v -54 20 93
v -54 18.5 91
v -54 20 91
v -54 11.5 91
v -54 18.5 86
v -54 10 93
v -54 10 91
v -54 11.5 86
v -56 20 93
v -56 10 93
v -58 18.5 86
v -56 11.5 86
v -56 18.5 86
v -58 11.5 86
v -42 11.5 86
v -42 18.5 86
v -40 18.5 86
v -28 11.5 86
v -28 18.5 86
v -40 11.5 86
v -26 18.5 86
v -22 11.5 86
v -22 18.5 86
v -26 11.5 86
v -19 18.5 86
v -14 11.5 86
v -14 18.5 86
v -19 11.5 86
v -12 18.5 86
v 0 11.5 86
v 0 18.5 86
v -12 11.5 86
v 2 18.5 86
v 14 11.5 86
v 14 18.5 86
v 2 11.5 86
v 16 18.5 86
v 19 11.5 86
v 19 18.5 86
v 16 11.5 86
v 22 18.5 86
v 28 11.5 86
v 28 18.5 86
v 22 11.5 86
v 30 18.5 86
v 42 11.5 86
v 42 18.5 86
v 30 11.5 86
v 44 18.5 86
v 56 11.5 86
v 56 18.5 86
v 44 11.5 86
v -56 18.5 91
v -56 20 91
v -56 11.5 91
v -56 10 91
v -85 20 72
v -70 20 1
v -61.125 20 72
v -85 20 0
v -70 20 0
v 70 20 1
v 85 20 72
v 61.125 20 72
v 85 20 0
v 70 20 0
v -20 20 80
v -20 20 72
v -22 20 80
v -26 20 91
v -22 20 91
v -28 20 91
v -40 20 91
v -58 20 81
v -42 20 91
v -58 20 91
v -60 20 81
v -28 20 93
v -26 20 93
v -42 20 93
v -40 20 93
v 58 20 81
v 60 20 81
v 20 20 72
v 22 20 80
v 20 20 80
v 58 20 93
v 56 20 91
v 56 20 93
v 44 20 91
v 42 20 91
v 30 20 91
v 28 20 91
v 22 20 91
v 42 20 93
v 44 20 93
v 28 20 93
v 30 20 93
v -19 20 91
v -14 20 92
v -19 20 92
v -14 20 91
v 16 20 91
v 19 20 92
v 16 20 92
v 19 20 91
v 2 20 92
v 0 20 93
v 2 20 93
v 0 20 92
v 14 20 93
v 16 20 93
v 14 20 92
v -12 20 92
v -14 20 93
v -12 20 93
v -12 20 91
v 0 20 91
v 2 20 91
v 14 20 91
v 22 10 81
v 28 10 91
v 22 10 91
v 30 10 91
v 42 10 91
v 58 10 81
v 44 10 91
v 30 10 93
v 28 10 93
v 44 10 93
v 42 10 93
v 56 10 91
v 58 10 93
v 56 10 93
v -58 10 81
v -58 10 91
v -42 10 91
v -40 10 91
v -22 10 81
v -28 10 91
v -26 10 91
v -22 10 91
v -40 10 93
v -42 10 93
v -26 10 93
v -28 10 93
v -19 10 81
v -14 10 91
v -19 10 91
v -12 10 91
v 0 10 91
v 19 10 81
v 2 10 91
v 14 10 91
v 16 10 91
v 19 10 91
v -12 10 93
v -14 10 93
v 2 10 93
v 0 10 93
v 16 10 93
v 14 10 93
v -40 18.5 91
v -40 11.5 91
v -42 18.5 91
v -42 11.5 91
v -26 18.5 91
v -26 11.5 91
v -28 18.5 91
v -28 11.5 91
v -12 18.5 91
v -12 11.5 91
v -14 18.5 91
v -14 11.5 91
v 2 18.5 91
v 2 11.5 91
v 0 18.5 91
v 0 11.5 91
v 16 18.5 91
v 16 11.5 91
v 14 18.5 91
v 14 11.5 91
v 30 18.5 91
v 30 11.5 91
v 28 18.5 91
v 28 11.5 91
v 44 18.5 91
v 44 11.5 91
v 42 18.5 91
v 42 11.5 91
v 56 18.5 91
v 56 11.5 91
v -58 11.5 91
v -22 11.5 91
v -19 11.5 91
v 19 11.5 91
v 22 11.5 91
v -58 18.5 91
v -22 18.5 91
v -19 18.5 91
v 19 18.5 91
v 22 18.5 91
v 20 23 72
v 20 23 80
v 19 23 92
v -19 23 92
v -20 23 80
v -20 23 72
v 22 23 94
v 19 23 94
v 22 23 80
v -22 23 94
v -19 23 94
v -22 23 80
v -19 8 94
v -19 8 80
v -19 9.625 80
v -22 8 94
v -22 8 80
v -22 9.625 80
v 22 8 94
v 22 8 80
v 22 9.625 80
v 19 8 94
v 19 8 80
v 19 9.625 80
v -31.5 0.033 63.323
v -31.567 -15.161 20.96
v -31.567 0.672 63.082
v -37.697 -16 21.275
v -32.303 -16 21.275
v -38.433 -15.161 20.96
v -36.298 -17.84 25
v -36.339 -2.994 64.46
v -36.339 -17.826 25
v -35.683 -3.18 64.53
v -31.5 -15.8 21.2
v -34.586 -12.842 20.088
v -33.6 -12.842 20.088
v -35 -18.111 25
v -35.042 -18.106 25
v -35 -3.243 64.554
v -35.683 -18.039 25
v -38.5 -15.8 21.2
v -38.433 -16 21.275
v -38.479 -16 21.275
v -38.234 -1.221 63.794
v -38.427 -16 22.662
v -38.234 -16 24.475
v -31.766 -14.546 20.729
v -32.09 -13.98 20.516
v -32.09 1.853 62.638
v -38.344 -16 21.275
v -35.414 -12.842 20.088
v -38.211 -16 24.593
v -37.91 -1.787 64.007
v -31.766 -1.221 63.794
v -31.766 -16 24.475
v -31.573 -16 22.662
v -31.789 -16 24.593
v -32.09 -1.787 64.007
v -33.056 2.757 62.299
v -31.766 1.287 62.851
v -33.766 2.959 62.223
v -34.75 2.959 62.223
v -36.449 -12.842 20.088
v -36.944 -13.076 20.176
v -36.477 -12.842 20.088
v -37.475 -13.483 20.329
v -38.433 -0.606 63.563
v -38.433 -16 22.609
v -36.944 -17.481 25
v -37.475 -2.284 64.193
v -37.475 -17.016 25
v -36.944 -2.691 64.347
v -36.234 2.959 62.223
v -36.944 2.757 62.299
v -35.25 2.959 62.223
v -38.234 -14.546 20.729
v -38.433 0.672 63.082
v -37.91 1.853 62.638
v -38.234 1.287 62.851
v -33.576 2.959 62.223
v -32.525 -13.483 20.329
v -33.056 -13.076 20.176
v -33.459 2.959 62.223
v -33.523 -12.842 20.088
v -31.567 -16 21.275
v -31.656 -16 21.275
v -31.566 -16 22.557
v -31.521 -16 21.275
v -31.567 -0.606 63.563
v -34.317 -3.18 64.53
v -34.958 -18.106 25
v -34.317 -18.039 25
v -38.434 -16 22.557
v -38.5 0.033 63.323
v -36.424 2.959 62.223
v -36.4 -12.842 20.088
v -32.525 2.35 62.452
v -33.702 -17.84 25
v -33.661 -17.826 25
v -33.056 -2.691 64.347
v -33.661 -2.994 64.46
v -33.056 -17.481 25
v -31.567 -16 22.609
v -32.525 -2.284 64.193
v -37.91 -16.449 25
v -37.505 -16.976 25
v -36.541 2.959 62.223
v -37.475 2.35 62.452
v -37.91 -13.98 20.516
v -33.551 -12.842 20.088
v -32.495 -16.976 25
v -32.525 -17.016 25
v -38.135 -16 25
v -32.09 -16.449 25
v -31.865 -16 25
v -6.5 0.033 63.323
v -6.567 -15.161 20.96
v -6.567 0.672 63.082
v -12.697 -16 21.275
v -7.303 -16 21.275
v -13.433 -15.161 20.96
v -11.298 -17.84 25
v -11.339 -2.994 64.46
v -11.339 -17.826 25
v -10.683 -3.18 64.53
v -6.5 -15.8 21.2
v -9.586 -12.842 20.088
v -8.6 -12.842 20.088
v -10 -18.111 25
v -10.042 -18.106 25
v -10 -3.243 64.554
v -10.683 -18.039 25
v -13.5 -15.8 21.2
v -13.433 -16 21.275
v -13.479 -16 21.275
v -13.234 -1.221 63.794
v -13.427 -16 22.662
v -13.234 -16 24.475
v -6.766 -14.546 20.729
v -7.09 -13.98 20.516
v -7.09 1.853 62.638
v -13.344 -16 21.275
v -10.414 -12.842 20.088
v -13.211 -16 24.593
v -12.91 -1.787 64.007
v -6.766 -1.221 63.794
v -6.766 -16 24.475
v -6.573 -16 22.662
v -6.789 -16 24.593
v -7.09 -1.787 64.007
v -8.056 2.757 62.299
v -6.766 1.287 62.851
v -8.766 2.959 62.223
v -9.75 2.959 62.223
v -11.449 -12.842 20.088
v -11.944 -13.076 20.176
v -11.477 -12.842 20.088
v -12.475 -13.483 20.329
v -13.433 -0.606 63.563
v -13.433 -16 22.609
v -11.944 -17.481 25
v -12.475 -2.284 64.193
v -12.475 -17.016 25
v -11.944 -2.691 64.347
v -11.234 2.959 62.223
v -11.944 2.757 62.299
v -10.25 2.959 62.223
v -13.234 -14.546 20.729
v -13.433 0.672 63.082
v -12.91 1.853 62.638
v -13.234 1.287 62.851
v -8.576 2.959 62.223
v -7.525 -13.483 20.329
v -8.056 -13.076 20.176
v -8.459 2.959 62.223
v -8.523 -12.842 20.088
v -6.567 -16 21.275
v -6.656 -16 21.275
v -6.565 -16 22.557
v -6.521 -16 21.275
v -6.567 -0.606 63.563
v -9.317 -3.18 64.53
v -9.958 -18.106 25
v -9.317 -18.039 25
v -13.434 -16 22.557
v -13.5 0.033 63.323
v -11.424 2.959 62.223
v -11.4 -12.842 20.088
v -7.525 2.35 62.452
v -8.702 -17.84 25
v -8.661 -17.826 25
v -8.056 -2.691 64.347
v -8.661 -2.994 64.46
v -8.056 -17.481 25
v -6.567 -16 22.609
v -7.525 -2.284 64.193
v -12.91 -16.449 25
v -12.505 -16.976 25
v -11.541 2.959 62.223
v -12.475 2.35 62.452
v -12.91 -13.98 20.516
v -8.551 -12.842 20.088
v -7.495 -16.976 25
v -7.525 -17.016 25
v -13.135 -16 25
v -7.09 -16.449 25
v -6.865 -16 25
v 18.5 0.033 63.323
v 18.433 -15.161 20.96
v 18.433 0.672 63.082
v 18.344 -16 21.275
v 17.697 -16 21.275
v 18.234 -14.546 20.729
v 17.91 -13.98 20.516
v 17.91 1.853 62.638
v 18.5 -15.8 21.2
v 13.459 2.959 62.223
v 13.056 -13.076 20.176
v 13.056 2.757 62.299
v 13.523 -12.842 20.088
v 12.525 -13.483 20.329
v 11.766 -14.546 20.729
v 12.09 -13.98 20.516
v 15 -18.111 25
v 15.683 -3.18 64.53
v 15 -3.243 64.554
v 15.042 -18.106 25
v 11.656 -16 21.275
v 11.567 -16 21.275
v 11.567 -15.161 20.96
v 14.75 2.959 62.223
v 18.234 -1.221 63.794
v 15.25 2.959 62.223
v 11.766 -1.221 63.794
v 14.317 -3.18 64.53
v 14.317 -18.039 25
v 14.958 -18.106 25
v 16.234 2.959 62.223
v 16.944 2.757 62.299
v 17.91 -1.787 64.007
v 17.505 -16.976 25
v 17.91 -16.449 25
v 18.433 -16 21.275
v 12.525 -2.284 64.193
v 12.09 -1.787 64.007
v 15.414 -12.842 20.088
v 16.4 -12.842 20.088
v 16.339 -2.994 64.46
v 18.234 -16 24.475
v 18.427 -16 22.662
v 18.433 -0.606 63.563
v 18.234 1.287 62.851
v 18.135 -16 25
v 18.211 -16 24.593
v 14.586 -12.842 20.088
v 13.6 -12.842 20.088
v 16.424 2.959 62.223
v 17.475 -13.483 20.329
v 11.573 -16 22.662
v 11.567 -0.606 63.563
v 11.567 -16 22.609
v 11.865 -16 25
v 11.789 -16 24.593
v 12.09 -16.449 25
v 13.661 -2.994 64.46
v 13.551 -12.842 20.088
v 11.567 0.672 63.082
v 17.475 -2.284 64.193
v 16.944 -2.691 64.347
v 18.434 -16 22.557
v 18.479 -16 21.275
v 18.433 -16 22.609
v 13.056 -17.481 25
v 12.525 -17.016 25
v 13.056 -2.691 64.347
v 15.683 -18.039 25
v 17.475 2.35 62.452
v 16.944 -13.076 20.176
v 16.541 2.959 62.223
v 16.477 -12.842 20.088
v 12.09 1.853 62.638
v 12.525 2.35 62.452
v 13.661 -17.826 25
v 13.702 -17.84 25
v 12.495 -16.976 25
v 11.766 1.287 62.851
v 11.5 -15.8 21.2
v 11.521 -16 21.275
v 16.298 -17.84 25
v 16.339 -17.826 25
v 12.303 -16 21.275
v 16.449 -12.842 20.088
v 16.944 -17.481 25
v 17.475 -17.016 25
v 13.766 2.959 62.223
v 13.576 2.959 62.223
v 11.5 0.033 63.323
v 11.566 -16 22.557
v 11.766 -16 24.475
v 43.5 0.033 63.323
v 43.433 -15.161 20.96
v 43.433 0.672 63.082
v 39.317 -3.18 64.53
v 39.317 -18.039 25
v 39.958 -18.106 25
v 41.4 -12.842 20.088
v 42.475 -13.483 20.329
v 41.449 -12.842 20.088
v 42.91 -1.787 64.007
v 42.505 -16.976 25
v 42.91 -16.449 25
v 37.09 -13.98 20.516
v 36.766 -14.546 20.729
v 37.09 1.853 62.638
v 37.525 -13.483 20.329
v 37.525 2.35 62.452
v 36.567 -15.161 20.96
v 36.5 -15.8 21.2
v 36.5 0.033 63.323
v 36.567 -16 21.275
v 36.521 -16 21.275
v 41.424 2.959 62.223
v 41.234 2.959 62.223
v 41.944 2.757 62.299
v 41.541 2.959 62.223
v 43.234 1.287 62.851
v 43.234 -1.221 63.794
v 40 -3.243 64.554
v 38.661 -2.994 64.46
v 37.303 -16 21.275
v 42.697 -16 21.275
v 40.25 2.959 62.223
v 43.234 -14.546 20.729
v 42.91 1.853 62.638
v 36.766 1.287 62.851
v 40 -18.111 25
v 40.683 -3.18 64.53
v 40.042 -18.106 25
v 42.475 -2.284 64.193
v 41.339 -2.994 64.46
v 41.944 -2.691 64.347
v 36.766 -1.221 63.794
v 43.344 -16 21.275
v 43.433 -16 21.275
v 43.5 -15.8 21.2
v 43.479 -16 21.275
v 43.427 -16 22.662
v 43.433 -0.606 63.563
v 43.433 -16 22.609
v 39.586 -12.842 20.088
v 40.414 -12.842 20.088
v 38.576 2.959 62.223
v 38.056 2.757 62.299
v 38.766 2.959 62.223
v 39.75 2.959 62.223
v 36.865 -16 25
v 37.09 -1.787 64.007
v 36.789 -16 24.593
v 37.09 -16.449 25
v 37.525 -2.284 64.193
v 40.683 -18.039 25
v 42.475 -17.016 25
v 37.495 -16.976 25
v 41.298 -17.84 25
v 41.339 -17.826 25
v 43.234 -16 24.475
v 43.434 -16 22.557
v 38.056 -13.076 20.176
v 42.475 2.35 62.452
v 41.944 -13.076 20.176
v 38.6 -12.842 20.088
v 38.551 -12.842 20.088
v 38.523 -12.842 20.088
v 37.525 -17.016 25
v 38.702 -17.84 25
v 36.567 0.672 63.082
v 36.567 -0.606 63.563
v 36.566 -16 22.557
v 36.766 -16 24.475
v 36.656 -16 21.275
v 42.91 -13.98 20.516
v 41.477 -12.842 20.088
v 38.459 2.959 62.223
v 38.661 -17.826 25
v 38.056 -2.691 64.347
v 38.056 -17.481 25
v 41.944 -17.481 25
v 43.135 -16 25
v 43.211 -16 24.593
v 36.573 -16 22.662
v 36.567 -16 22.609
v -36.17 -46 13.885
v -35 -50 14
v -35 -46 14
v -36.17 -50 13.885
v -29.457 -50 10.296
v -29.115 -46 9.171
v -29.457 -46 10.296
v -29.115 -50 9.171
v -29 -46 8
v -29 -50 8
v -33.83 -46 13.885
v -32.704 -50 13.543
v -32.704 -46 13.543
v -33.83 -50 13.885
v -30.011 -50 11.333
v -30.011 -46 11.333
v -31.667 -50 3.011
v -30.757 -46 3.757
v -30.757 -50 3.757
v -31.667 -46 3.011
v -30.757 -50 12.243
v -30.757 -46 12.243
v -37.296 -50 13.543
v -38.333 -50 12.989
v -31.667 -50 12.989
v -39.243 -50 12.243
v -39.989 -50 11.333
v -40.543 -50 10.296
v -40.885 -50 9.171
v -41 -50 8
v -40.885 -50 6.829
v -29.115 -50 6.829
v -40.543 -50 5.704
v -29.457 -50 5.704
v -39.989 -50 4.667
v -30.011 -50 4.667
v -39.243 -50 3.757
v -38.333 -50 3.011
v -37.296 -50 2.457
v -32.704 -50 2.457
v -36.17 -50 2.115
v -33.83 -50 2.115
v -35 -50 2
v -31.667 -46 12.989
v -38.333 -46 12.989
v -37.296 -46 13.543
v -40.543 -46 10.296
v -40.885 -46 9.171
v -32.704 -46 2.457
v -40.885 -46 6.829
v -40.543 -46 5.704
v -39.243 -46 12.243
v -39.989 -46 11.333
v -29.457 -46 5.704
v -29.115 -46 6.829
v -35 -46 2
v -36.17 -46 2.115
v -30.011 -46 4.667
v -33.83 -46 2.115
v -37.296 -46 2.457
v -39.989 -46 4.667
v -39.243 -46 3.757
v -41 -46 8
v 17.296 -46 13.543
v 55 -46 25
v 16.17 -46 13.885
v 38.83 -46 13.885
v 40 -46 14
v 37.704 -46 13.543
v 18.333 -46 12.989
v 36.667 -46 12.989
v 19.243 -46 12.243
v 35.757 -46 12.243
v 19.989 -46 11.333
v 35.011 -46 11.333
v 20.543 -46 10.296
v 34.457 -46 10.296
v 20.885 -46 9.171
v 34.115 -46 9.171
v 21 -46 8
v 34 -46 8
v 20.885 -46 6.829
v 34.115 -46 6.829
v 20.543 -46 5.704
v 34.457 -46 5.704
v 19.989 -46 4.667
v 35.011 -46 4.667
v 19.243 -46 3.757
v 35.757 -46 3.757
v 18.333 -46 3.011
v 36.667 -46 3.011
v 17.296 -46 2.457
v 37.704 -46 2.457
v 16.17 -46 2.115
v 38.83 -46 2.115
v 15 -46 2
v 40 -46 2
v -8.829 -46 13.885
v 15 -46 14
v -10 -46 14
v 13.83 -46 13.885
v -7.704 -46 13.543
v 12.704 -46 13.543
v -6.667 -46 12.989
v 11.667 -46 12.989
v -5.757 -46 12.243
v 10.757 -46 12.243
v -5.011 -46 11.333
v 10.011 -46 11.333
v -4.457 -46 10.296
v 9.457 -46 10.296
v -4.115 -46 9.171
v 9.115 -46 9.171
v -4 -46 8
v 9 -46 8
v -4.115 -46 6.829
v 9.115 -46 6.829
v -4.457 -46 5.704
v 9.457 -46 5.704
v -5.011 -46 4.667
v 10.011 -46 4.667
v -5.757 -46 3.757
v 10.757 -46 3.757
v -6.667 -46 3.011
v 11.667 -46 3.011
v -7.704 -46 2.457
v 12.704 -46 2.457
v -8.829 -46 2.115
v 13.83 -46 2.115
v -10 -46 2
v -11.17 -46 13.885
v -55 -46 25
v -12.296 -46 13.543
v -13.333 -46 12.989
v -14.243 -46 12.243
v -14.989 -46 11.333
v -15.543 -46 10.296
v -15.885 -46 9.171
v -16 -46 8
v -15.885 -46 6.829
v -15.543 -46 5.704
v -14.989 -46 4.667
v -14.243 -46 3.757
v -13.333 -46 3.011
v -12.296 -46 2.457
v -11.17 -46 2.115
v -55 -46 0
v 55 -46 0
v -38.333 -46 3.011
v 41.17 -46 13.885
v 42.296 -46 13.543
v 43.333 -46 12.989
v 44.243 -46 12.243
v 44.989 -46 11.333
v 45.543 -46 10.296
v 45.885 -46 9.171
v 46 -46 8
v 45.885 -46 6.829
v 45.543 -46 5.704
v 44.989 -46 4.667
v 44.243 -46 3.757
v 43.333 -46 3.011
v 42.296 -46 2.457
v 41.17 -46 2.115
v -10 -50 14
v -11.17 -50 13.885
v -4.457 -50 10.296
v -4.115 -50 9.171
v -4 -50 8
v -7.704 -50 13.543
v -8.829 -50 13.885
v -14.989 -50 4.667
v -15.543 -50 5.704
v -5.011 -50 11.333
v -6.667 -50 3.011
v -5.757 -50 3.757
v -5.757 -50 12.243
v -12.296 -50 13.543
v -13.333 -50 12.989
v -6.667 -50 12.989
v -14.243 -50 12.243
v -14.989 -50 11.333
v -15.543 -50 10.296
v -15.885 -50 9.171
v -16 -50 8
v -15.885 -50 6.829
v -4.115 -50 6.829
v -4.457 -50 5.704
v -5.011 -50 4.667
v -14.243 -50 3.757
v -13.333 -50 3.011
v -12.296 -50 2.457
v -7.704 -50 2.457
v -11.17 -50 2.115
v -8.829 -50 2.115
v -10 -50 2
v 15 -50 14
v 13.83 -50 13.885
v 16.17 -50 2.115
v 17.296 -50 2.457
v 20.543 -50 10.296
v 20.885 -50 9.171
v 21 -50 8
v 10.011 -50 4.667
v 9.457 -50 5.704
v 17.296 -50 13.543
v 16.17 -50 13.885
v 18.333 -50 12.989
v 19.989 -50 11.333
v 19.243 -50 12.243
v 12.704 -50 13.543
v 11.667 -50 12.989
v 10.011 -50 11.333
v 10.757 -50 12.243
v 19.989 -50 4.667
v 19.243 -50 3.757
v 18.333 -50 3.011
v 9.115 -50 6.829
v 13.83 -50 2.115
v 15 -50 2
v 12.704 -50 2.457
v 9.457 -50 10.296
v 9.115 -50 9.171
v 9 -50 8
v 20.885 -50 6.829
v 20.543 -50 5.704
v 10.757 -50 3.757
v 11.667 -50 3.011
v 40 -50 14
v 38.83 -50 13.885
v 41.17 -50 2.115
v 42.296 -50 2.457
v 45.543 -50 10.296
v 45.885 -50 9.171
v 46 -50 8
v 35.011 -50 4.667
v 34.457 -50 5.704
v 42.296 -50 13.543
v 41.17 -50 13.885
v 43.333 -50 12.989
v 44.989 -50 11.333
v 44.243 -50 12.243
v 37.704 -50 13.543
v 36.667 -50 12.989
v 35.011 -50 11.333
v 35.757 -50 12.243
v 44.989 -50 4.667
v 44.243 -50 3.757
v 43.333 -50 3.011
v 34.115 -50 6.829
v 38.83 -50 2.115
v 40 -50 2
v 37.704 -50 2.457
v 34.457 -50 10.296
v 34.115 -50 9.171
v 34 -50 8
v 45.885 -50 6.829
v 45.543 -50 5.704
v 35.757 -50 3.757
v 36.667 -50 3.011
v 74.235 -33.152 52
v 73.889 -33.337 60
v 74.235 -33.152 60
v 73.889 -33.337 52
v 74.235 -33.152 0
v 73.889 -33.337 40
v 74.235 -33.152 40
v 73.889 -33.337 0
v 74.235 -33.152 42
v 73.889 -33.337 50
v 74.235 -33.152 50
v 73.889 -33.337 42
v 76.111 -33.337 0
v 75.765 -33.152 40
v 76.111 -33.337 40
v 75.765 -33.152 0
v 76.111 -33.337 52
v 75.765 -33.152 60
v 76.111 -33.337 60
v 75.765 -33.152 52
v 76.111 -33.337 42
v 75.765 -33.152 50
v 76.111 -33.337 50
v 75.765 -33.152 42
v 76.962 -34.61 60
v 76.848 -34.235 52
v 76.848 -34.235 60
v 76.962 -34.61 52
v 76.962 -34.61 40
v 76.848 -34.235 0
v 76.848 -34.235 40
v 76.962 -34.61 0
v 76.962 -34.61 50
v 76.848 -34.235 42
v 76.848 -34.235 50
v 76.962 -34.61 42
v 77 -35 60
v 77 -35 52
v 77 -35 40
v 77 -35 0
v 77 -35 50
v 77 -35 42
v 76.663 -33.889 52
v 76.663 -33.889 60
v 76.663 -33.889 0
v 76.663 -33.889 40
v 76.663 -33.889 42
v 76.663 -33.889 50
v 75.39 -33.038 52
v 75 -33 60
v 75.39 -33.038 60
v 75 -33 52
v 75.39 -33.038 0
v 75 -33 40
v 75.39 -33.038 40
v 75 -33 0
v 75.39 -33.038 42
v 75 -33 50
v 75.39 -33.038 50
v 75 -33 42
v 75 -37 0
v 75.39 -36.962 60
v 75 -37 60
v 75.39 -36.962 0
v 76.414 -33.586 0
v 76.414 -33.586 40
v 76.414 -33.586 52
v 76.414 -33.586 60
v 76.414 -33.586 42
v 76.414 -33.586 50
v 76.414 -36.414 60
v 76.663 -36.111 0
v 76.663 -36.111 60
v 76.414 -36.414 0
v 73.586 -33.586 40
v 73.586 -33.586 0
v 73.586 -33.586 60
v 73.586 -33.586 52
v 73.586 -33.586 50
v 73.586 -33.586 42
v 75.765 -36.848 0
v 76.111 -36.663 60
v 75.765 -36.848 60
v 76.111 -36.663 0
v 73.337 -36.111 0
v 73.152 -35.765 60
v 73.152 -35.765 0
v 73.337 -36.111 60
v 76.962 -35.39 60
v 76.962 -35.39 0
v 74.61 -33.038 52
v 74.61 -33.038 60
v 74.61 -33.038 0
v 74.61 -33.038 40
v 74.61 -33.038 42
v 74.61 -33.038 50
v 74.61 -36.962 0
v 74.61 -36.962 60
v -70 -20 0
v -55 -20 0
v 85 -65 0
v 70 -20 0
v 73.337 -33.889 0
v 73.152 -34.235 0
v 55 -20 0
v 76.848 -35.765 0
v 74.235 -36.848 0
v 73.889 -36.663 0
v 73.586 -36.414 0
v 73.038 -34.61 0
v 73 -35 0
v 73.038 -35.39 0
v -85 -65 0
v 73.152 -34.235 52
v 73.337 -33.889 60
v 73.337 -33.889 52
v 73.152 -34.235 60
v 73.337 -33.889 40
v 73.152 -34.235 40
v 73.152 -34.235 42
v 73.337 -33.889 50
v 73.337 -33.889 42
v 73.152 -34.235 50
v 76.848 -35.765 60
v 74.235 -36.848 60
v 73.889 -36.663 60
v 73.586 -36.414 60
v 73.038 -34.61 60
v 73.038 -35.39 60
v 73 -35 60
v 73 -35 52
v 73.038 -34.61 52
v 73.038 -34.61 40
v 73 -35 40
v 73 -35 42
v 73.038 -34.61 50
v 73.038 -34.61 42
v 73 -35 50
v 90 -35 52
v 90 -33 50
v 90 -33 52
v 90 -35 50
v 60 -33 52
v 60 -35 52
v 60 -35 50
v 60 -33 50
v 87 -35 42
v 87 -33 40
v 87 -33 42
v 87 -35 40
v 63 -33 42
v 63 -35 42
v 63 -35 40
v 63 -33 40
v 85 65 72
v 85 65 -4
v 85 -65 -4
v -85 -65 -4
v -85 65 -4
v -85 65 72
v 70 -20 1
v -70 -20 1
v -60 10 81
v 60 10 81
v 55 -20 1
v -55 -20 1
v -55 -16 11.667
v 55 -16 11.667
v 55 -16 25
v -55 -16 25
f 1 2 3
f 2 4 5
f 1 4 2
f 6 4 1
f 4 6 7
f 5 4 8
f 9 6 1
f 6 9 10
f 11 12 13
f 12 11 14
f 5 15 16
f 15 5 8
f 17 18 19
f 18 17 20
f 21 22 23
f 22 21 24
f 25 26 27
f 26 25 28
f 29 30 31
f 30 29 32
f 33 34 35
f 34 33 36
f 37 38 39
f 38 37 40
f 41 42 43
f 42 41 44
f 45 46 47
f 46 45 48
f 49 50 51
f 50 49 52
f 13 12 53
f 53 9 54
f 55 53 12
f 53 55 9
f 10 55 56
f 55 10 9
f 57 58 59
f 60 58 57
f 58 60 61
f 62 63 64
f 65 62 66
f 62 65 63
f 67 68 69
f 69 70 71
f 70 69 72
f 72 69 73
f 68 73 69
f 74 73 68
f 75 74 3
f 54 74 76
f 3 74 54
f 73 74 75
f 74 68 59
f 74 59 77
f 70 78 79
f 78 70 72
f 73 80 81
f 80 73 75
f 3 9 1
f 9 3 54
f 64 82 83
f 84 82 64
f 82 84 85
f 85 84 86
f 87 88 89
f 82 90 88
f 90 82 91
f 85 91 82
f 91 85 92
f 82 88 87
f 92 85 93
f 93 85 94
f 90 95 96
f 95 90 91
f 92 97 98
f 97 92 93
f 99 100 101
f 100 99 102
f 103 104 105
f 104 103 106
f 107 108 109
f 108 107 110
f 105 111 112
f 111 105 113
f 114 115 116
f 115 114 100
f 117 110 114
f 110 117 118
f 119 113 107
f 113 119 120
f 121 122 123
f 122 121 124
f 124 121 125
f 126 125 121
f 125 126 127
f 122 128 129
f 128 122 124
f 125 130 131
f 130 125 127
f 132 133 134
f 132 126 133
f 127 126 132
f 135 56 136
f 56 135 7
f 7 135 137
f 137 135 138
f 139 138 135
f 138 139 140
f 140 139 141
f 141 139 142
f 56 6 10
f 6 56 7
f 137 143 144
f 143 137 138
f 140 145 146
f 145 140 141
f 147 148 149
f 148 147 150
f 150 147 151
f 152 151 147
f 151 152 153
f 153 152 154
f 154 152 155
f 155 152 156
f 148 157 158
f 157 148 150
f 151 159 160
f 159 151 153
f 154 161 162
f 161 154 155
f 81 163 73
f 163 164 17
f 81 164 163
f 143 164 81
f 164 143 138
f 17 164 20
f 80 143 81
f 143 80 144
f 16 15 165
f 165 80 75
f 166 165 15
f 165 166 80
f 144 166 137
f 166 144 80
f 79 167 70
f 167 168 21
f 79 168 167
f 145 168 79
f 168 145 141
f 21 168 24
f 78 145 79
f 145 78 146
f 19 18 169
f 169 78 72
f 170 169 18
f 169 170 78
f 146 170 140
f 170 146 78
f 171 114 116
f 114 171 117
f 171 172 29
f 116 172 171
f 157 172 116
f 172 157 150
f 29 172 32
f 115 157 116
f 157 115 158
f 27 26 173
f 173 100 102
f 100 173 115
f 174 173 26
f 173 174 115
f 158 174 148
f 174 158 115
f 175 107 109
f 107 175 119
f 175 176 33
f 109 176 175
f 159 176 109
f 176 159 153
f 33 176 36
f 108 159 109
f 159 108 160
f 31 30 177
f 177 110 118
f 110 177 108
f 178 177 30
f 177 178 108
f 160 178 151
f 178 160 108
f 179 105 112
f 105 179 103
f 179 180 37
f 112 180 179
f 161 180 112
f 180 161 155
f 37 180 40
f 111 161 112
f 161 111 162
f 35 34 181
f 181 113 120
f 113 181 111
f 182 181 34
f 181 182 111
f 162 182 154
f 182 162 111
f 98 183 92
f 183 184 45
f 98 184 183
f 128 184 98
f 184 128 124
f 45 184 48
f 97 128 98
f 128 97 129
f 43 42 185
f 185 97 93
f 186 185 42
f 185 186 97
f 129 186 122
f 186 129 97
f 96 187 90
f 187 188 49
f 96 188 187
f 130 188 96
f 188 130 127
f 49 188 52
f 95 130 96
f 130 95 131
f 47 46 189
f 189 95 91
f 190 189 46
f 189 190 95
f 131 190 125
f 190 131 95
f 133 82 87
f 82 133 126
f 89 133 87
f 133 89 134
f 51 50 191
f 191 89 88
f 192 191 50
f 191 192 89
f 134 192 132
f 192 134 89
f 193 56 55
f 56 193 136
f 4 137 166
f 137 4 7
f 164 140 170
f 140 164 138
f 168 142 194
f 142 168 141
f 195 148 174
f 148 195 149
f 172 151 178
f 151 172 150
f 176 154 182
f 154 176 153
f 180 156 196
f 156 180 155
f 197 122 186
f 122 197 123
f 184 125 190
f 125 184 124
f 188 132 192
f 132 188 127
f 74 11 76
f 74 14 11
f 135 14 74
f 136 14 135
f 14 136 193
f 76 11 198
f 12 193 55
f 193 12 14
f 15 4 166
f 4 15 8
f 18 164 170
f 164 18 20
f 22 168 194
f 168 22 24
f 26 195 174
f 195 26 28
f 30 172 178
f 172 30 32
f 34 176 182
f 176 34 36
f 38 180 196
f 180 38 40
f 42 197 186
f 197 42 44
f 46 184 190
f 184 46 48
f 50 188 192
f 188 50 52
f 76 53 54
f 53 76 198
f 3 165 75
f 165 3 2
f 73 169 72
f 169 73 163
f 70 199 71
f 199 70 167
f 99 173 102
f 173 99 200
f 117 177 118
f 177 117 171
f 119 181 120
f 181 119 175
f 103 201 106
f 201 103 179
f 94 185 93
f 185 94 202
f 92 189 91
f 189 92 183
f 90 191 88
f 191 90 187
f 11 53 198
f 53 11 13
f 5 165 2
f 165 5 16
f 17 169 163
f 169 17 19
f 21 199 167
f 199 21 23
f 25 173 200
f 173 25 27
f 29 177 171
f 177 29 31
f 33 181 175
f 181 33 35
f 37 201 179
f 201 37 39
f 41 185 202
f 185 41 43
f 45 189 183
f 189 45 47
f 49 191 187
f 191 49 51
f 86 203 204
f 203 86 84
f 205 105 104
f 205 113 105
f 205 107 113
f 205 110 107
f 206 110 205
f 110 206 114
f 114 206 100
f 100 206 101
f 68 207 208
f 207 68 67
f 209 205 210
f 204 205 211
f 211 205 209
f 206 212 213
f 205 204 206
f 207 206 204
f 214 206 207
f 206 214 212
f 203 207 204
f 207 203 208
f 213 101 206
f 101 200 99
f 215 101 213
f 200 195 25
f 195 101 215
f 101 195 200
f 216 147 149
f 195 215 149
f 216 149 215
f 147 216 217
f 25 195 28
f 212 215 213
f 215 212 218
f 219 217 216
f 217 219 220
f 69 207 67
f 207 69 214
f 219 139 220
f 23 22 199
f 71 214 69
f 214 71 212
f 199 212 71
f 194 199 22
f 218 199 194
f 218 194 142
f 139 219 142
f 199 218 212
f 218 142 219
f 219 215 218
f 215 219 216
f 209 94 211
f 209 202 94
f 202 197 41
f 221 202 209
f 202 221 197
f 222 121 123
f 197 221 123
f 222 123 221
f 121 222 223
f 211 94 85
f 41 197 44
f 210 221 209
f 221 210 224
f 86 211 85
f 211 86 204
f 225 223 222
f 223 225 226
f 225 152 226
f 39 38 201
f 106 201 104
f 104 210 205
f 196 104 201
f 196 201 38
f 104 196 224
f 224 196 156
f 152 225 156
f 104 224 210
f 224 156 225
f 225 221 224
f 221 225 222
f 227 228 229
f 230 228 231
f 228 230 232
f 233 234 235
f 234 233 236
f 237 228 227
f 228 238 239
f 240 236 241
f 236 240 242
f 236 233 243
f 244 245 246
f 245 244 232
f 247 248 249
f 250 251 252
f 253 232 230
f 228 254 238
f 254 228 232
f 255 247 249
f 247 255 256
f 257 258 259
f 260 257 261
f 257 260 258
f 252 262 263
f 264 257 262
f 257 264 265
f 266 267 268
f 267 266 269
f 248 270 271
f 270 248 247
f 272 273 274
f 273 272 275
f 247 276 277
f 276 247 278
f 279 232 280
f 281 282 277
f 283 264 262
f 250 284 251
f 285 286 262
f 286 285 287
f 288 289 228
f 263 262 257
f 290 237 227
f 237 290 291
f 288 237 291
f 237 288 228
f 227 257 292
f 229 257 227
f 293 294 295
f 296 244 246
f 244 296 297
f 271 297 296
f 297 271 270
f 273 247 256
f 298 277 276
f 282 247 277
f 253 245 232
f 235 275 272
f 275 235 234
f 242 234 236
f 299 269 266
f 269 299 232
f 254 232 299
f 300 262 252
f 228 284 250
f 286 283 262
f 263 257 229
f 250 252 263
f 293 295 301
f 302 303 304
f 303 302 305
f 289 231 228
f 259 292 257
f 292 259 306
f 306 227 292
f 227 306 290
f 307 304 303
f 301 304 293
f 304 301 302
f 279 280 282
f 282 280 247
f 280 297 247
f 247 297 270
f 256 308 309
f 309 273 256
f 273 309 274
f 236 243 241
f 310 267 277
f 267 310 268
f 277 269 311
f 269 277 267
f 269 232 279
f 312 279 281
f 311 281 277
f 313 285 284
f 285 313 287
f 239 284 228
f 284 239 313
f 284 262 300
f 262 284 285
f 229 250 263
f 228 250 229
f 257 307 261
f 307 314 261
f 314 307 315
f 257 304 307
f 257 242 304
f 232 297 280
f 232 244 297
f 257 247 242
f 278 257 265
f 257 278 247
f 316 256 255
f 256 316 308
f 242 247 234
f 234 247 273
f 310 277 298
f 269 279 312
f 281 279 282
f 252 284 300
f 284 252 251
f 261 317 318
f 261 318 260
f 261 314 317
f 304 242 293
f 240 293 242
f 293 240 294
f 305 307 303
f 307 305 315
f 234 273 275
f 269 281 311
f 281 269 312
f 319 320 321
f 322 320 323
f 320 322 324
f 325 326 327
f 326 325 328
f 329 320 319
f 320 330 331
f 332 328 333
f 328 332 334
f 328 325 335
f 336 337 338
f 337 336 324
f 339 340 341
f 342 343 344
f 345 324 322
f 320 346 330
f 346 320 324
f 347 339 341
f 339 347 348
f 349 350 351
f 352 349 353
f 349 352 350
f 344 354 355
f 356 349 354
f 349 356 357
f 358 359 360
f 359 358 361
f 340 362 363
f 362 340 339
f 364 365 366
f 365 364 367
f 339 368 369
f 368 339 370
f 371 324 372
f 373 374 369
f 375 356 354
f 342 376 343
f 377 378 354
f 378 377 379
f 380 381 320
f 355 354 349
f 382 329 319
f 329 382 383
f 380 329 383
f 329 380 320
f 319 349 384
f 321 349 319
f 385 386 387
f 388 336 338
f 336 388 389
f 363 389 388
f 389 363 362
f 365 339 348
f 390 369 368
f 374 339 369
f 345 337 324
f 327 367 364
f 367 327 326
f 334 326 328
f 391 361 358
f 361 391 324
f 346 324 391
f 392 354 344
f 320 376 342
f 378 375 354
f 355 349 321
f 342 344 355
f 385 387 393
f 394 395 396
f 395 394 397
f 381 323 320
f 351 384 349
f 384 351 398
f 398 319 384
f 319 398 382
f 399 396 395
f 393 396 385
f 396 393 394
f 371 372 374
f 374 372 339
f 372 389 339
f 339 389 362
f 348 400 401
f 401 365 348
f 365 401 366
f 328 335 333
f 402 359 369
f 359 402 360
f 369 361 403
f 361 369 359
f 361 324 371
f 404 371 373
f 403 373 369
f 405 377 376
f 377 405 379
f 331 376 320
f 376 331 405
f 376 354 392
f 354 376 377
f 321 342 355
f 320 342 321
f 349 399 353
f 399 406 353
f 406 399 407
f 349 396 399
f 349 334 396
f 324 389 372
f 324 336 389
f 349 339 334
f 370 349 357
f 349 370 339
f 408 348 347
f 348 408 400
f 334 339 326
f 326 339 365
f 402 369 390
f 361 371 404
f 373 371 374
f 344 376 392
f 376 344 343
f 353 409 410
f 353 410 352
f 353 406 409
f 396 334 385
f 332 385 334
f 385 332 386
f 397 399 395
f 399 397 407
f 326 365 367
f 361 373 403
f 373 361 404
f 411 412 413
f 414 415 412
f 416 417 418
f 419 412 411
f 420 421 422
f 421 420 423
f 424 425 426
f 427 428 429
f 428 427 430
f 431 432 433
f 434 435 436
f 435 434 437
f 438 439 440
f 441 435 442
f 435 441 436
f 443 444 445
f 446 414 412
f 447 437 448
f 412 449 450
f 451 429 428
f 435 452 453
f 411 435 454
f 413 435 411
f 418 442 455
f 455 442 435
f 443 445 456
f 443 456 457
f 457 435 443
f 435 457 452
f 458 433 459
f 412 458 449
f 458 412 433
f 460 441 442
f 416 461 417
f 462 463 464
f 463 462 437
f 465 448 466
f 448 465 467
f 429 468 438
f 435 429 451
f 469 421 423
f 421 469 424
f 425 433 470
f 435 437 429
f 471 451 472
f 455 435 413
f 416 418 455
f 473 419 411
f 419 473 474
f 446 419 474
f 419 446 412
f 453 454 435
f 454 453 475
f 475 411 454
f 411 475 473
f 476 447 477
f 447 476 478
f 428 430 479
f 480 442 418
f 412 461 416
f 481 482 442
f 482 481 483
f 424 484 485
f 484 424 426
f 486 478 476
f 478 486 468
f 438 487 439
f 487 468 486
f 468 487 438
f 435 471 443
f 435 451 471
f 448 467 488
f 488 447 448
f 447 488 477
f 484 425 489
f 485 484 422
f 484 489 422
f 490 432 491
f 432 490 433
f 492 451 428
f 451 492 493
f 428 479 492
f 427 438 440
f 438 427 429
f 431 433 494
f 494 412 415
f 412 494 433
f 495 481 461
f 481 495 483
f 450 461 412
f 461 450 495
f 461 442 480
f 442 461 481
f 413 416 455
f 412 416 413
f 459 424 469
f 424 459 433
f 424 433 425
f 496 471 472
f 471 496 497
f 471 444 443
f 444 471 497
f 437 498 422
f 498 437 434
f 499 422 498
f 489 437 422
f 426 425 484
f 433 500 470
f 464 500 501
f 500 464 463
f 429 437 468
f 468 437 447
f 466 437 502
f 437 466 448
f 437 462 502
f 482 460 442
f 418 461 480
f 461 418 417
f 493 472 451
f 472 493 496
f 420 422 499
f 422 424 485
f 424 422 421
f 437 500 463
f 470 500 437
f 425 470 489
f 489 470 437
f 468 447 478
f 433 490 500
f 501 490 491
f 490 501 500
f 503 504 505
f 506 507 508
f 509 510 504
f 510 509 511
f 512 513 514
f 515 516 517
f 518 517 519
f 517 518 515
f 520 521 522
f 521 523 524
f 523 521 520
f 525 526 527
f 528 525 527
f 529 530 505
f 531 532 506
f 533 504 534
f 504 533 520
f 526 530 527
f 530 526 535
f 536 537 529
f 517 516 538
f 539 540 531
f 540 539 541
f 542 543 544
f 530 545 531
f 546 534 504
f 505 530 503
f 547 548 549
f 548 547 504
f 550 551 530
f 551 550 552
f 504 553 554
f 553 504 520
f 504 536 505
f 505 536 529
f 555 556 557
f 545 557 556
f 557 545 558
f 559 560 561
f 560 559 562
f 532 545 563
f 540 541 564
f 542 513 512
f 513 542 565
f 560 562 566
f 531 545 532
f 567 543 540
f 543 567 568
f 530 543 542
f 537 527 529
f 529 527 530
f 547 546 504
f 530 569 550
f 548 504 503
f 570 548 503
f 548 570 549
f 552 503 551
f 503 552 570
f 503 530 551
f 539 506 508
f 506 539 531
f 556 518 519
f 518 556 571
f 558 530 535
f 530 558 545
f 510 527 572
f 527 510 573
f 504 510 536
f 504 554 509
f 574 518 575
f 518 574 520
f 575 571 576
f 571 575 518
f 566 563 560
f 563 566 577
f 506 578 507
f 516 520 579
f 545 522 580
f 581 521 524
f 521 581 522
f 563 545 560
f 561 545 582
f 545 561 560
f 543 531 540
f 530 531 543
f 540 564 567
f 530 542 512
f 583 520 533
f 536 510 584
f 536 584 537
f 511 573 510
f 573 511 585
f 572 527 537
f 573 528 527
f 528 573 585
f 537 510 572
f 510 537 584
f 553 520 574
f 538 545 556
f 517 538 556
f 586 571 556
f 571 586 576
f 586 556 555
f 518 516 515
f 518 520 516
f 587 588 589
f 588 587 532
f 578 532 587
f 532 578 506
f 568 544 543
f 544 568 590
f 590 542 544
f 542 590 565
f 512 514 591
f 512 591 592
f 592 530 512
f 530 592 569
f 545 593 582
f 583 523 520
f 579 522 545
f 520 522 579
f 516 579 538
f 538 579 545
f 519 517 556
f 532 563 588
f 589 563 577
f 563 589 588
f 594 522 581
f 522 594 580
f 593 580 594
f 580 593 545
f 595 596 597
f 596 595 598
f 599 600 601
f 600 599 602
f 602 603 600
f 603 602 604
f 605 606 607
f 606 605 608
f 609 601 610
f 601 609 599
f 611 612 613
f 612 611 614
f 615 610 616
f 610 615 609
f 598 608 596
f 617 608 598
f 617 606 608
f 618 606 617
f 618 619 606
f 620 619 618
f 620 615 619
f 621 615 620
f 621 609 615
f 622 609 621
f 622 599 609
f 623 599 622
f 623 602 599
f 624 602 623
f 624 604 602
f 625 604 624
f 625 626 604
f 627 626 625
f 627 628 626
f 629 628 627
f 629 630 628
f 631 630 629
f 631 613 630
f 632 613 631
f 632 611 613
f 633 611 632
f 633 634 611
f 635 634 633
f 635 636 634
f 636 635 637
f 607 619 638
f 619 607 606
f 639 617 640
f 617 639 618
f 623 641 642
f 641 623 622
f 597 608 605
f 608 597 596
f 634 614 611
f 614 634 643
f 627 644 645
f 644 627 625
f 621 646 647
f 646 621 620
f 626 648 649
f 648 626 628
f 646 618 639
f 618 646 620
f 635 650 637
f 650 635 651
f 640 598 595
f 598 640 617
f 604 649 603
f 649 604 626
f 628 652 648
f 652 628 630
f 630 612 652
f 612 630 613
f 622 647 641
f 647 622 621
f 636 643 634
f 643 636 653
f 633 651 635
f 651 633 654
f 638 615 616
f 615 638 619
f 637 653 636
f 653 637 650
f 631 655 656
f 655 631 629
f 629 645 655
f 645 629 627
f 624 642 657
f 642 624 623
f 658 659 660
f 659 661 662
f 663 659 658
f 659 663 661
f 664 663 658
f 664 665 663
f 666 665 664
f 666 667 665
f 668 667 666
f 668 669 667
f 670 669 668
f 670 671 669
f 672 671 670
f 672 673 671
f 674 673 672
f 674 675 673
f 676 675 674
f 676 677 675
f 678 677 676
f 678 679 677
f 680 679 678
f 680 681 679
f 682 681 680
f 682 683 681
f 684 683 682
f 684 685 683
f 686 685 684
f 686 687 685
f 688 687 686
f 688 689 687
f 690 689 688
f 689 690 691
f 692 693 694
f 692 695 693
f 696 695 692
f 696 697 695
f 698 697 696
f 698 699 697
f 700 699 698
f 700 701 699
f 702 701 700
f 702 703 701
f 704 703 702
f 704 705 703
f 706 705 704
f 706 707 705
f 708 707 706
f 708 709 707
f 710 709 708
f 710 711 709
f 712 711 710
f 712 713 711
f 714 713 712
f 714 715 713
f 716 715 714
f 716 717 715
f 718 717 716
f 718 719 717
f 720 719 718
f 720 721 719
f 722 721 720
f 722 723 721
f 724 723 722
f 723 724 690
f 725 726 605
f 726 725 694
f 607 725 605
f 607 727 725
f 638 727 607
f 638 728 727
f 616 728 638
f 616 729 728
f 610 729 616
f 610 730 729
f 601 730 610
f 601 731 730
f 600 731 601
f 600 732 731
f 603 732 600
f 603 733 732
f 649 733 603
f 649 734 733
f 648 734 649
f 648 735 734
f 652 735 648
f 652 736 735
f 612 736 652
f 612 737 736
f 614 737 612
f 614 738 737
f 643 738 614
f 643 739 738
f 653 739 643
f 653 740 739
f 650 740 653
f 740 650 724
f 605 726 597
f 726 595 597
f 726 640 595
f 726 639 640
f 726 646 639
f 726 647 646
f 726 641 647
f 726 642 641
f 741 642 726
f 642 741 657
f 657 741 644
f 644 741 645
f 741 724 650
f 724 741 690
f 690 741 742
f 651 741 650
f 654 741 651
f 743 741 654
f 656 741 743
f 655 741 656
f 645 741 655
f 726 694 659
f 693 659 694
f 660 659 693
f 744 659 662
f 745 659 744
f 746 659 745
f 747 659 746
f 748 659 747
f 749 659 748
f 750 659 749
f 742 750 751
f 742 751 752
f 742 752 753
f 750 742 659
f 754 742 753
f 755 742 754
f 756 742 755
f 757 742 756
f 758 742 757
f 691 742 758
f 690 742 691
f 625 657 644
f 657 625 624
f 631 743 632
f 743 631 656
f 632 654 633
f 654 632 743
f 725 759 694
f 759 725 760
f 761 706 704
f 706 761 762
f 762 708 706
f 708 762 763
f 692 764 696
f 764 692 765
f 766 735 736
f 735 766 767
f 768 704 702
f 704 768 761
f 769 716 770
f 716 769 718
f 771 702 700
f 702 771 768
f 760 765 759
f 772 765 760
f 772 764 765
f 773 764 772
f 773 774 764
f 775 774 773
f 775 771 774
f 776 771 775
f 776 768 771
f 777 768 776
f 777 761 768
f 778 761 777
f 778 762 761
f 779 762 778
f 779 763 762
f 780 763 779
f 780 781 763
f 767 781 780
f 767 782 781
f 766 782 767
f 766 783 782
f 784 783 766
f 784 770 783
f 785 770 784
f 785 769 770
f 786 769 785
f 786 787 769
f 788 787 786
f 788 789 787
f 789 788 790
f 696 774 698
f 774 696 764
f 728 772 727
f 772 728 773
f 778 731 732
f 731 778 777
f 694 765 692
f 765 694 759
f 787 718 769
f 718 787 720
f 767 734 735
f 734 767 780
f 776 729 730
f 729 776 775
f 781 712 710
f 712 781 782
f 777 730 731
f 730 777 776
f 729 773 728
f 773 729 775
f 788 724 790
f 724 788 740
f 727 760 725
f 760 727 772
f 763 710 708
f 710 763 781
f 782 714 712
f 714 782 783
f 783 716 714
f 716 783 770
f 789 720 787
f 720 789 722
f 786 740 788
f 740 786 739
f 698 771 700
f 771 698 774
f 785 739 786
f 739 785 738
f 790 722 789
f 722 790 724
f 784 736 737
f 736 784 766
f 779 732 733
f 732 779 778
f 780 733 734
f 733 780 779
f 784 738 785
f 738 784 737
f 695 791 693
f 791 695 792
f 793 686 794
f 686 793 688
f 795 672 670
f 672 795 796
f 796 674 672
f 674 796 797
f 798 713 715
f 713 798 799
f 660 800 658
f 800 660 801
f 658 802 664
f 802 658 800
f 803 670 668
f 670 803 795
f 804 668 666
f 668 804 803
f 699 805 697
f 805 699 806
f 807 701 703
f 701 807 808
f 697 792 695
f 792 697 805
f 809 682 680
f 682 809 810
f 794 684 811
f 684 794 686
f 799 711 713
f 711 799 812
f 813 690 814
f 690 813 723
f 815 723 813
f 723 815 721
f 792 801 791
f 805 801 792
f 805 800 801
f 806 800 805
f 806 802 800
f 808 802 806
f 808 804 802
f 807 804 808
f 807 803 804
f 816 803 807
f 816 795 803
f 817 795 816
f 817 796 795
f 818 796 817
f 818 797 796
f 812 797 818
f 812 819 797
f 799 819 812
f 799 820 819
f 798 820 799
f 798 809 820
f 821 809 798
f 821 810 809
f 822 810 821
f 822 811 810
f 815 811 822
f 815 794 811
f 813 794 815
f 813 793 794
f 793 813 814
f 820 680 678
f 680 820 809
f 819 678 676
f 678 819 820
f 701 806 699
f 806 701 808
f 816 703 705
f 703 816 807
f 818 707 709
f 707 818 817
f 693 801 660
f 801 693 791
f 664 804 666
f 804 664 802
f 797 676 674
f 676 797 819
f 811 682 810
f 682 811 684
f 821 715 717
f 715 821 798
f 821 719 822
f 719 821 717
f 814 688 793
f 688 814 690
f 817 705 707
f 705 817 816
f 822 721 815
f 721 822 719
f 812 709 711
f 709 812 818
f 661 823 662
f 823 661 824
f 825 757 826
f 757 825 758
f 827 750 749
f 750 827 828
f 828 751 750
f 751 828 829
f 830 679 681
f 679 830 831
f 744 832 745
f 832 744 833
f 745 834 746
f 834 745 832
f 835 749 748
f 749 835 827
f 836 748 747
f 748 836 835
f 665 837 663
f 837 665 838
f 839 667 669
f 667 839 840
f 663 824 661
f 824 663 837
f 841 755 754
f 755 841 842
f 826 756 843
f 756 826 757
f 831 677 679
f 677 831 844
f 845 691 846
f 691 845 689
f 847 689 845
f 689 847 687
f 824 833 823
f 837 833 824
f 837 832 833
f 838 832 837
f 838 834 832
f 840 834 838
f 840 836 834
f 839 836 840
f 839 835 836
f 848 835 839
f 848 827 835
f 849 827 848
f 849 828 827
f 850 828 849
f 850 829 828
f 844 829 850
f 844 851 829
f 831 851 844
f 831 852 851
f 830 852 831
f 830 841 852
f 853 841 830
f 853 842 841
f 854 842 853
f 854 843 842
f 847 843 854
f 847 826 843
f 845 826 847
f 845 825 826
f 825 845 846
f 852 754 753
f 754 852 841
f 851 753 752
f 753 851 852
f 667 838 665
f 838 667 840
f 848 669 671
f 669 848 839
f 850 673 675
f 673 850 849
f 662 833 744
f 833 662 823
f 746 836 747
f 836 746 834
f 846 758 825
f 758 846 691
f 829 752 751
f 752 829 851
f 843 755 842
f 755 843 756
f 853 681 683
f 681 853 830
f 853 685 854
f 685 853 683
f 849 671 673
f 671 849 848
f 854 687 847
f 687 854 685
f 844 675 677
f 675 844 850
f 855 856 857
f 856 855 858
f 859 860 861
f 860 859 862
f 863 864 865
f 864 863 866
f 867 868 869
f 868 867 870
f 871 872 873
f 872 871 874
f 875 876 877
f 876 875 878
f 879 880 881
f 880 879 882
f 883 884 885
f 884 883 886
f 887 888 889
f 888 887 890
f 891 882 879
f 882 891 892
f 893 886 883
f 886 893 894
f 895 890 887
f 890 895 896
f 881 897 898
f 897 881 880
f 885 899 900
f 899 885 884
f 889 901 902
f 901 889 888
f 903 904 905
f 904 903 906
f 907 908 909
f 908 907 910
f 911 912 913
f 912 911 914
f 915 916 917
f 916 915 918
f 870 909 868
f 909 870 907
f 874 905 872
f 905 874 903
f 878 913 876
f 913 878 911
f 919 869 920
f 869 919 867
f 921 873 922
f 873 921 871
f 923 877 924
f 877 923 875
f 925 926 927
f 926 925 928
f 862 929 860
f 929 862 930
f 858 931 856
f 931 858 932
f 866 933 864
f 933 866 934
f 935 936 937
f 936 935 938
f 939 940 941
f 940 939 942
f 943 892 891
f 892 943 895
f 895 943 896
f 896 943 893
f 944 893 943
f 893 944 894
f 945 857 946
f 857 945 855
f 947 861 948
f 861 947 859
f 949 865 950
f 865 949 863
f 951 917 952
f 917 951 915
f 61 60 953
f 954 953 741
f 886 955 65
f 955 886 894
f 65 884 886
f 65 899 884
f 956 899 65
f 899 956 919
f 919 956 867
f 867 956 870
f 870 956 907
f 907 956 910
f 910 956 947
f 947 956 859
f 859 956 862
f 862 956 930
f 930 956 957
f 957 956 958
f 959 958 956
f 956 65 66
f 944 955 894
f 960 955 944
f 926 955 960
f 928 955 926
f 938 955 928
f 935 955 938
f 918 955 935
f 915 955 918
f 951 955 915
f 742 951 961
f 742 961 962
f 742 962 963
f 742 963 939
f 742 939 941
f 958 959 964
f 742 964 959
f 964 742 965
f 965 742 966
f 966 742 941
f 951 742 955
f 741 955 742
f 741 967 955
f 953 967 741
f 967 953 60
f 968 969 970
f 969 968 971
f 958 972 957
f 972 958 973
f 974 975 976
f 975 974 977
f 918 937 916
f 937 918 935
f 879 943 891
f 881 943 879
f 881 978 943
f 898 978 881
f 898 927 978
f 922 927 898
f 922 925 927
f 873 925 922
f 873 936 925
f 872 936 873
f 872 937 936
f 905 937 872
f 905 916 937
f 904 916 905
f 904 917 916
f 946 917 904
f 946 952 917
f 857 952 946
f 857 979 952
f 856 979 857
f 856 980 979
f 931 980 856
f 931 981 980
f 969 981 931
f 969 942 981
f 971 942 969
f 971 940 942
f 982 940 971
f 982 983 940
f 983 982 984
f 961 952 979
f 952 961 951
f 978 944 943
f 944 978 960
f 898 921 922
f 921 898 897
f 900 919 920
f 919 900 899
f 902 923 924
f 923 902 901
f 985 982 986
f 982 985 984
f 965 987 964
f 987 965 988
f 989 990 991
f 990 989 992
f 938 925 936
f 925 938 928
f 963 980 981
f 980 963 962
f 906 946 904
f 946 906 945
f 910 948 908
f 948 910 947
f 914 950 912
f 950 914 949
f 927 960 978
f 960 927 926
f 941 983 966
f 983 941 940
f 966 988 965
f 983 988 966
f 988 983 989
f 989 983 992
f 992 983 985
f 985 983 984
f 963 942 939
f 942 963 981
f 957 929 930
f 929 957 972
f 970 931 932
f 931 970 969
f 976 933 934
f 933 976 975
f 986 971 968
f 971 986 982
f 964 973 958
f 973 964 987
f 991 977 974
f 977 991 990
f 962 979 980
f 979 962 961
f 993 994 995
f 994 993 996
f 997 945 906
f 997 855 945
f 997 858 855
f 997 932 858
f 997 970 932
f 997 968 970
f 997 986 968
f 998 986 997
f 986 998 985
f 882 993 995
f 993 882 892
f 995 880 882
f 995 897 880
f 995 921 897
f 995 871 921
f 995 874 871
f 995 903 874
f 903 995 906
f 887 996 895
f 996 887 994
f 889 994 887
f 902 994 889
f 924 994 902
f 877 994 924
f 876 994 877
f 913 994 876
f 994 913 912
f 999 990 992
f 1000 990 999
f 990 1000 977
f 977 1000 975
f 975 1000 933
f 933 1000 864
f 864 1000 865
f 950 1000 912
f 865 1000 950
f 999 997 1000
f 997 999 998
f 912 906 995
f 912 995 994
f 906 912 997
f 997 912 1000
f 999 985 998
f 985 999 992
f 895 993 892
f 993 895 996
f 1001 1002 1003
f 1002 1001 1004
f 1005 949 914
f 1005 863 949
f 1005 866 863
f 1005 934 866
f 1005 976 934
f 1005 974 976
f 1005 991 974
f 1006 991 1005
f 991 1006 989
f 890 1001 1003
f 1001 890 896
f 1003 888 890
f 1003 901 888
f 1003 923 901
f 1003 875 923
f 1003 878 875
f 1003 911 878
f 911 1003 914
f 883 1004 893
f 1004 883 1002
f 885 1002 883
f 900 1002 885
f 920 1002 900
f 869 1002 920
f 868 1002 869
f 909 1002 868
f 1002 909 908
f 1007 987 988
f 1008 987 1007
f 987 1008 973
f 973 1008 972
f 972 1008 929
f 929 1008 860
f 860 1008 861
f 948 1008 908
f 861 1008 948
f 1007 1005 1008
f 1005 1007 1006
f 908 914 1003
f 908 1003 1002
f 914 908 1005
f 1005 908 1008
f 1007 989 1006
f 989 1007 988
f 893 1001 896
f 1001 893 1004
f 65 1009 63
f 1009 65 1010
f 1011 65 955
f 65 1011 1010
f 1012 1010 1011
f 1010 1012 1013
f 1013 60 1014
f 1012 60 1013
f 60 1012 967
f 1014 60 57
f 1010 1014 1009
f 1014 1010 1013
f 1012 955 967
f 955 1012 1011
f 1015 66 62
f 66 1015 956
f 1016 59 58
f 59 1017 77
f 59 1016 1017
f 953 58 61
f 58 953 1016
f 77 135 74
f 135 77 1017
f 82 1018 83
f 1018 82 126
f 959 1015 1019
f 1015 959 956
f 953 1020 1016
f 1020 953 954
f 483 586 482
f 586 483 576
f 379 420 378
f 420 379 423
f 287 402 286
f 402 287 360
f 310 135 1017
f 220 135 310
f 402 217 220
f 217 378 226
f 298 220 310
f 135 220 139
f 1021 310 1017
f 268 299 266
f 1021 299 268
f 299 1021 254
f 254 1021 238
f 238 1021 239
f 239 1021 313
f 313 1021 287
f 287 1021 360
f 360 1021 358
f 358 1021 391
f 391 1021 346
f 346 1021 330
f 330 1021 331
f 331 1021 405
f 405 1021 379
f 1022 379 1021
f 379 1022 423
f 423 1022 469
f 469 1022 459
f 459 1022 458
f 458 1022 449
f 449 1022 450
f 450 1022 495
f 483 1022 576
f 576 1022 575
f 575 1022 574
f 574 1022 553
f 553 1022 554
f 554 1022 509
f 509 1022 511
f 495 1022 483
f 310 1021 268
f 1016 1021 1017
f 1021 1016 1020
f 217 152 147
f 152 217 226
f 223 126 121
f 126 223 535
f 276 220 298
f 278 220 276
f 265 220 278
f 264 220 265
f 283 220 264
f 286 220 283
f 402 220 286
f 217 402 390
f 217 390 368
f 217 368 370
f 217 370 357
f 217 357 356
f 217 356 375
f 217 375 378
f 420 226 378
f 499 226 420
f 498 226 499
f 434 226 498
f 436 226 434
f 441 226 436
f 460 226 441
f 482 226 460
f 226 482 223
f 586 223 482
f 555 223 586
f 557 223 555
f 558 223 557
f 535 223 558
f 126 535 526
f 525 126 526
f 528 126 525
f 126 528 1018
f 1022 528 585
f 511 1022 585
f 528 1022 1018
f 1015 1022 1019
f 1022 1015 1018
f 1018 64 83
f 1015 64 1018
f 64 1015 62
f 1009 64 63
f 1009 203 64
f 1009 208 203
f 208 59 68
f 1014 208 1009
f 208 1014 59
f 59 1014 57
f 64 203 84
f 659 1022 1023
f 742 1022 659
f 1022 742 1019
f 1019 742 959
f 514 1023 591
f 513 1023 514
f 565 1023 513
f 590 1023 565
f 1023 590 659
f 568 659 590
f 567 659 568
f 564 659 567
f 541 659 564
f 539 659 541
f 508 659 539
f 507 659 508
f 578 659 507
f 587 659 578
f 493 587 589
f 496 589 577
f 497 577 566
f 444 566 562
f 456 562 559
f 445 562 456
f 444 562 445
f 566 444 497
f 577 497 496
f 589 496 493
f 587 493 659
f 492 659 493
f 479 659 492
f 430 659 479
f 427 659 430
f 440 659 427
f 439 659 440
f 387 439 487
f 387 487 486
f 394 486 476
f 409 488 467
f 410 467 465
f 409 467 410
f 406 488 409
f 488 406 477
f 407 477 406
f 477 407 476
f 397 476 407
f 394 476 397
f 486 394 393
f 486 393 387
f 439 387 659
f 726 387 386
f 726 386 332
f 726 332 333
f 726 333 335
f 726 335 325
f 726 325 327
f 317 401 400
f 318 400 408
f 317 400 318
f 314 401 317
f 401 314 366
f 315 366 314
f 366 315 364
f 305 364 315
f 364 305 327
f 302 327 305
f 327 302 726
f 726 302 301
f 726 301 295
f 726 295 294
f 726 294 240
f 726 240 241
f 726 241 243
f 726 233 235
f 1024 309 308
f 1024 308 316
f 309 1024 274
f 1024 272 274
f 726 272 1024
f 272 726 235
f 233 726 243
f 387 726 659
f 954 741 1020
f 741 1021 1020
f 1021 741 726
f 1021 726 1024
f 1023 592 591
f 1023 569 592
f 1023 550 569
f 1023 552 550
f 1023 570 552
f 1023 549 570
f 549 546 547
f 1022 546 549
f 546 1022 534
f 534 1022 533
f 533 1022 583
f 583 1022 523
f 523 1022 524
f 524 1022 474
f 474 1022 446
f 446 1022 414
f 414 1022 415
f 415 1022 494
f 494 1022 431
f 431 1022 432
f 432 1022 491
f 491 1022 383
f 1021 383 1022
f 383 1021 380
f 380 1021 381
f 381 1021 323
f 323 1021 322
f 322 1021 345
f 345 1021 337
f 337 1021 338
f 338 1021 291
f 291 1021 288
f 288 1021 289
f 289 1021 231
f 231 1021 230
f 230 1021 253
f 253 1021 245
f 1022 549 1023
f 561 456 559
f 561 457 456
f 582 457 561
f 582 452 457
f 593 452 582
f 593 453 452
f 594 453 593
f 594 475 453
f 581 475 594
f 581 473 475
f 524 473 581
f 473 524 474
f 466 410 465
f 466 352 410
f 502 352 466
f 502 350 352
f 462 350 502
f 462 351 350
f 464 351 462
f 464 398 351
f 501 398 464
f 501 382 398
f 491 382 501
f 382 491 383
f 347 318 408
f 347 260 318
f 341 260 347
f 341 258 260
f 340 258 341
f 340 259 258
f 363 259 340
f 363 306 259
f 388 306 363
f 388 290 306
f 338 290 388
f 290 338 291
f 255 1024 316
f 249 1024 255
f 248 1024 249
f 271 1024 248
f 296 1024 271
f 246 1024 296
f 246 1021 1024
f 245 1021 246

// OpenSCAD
// 水力發電 Hydroelectric Dam — 重力壩 + 水庫 + 壩底發電廠房
// 座標：+Y 為上游（水庫側），-Y 為下游（發電廠房、尾水側）；Z 向上
$fn = 32;

// 地面基座
color([0.55, 0.54, 0.52])
  translate([-85, -65, -4]) cube([170, 130, 4]);

// 水壩主體（重力壩：上游面垂直、下游面傾斜）
color([0.65, 0.64, 0.62])
  hull() {
    translate([-70, -20, 0]) cube([140, 40, 1]);   // 壩底：y -20 ～ 20
    translate([-60, 10, 80]) cube([120, 10, 1]);   // 壩頂：y 10 ～ 20（上游面 y = 20 垂直）
  }

// 壩頂道路
color([0.55, 0.54, 0.52])
  translate([-58, 10, 81]) cube([116, 10, 5]);

// 壩頂護欄
color([0.72, 0.72, 0.75]) {
  translate([-58, 10, 86]) cube([116, 1.5, 5]);
  translate([-58, 18.5, 86]) cube([116, 1.5, 5]);
  for (x = [-56, -42, -28, -14, 0, 14, 28, 42, 56])
    translate([x, 10, 86]) cube([2, 10, 7]);
}

// 水庫（上游水面，位在壩的 +Y 側，水位低於壩頂）
color([0.15, 0.45, 0.75, 0.7])
  translate([-85, 20, 0]) cube([170, 45, 72]);

// 溢洪道閘門（壩頂中央、上游側）
color([0.38, 0.38, 0.42]) {
  translate([-20, 20, 60]) cube([40, 3, 32]);   // 閘門板
  translate([-22, 8, 80]) cube([3, 15, 14]);    // 閘墩（左）
  translate([19, 8, 80]) cube([3, 15, 14]);     // 閘墩（右）
}

// 發電廠房（壩底下游側，緊貼壩趾）
color([0.58, 0.58, 0.60])
  translate([-55, -46, 0]) cube([110, 30, 25]);

// 壓力鋼管（沿下游壩面把水引到廠房的水輪機）
color([0.45, 0.45, 0.48])
  for (x = [-35, -10, 15, 40])
    translate([x, -15.8, 21.2]) rotate([-20.6, 0, 0]) cylinder(h = 45, r = 3.5);

// 水輪機尾水出口（廠房下游面，朝 -Y）
color([0.30, 0.30, 0.33])
  for (x = [-35, -10, 15, 40])
    translate([x, -46, 8]) rotate([90, 0, 0]) cylinder(h = 4, r = 6);

// 輸電線塔（廠房旁）
color([0.42, 0.42, 0.45])
  translate([75, -35, 0]) {
    cylinder(h = 60, r = 2);
    translate([-15, 0, 50]) cube([30, 2, 2]);
    translate([-12, 0, 40]) cube([24, 2, 2]);
  }
